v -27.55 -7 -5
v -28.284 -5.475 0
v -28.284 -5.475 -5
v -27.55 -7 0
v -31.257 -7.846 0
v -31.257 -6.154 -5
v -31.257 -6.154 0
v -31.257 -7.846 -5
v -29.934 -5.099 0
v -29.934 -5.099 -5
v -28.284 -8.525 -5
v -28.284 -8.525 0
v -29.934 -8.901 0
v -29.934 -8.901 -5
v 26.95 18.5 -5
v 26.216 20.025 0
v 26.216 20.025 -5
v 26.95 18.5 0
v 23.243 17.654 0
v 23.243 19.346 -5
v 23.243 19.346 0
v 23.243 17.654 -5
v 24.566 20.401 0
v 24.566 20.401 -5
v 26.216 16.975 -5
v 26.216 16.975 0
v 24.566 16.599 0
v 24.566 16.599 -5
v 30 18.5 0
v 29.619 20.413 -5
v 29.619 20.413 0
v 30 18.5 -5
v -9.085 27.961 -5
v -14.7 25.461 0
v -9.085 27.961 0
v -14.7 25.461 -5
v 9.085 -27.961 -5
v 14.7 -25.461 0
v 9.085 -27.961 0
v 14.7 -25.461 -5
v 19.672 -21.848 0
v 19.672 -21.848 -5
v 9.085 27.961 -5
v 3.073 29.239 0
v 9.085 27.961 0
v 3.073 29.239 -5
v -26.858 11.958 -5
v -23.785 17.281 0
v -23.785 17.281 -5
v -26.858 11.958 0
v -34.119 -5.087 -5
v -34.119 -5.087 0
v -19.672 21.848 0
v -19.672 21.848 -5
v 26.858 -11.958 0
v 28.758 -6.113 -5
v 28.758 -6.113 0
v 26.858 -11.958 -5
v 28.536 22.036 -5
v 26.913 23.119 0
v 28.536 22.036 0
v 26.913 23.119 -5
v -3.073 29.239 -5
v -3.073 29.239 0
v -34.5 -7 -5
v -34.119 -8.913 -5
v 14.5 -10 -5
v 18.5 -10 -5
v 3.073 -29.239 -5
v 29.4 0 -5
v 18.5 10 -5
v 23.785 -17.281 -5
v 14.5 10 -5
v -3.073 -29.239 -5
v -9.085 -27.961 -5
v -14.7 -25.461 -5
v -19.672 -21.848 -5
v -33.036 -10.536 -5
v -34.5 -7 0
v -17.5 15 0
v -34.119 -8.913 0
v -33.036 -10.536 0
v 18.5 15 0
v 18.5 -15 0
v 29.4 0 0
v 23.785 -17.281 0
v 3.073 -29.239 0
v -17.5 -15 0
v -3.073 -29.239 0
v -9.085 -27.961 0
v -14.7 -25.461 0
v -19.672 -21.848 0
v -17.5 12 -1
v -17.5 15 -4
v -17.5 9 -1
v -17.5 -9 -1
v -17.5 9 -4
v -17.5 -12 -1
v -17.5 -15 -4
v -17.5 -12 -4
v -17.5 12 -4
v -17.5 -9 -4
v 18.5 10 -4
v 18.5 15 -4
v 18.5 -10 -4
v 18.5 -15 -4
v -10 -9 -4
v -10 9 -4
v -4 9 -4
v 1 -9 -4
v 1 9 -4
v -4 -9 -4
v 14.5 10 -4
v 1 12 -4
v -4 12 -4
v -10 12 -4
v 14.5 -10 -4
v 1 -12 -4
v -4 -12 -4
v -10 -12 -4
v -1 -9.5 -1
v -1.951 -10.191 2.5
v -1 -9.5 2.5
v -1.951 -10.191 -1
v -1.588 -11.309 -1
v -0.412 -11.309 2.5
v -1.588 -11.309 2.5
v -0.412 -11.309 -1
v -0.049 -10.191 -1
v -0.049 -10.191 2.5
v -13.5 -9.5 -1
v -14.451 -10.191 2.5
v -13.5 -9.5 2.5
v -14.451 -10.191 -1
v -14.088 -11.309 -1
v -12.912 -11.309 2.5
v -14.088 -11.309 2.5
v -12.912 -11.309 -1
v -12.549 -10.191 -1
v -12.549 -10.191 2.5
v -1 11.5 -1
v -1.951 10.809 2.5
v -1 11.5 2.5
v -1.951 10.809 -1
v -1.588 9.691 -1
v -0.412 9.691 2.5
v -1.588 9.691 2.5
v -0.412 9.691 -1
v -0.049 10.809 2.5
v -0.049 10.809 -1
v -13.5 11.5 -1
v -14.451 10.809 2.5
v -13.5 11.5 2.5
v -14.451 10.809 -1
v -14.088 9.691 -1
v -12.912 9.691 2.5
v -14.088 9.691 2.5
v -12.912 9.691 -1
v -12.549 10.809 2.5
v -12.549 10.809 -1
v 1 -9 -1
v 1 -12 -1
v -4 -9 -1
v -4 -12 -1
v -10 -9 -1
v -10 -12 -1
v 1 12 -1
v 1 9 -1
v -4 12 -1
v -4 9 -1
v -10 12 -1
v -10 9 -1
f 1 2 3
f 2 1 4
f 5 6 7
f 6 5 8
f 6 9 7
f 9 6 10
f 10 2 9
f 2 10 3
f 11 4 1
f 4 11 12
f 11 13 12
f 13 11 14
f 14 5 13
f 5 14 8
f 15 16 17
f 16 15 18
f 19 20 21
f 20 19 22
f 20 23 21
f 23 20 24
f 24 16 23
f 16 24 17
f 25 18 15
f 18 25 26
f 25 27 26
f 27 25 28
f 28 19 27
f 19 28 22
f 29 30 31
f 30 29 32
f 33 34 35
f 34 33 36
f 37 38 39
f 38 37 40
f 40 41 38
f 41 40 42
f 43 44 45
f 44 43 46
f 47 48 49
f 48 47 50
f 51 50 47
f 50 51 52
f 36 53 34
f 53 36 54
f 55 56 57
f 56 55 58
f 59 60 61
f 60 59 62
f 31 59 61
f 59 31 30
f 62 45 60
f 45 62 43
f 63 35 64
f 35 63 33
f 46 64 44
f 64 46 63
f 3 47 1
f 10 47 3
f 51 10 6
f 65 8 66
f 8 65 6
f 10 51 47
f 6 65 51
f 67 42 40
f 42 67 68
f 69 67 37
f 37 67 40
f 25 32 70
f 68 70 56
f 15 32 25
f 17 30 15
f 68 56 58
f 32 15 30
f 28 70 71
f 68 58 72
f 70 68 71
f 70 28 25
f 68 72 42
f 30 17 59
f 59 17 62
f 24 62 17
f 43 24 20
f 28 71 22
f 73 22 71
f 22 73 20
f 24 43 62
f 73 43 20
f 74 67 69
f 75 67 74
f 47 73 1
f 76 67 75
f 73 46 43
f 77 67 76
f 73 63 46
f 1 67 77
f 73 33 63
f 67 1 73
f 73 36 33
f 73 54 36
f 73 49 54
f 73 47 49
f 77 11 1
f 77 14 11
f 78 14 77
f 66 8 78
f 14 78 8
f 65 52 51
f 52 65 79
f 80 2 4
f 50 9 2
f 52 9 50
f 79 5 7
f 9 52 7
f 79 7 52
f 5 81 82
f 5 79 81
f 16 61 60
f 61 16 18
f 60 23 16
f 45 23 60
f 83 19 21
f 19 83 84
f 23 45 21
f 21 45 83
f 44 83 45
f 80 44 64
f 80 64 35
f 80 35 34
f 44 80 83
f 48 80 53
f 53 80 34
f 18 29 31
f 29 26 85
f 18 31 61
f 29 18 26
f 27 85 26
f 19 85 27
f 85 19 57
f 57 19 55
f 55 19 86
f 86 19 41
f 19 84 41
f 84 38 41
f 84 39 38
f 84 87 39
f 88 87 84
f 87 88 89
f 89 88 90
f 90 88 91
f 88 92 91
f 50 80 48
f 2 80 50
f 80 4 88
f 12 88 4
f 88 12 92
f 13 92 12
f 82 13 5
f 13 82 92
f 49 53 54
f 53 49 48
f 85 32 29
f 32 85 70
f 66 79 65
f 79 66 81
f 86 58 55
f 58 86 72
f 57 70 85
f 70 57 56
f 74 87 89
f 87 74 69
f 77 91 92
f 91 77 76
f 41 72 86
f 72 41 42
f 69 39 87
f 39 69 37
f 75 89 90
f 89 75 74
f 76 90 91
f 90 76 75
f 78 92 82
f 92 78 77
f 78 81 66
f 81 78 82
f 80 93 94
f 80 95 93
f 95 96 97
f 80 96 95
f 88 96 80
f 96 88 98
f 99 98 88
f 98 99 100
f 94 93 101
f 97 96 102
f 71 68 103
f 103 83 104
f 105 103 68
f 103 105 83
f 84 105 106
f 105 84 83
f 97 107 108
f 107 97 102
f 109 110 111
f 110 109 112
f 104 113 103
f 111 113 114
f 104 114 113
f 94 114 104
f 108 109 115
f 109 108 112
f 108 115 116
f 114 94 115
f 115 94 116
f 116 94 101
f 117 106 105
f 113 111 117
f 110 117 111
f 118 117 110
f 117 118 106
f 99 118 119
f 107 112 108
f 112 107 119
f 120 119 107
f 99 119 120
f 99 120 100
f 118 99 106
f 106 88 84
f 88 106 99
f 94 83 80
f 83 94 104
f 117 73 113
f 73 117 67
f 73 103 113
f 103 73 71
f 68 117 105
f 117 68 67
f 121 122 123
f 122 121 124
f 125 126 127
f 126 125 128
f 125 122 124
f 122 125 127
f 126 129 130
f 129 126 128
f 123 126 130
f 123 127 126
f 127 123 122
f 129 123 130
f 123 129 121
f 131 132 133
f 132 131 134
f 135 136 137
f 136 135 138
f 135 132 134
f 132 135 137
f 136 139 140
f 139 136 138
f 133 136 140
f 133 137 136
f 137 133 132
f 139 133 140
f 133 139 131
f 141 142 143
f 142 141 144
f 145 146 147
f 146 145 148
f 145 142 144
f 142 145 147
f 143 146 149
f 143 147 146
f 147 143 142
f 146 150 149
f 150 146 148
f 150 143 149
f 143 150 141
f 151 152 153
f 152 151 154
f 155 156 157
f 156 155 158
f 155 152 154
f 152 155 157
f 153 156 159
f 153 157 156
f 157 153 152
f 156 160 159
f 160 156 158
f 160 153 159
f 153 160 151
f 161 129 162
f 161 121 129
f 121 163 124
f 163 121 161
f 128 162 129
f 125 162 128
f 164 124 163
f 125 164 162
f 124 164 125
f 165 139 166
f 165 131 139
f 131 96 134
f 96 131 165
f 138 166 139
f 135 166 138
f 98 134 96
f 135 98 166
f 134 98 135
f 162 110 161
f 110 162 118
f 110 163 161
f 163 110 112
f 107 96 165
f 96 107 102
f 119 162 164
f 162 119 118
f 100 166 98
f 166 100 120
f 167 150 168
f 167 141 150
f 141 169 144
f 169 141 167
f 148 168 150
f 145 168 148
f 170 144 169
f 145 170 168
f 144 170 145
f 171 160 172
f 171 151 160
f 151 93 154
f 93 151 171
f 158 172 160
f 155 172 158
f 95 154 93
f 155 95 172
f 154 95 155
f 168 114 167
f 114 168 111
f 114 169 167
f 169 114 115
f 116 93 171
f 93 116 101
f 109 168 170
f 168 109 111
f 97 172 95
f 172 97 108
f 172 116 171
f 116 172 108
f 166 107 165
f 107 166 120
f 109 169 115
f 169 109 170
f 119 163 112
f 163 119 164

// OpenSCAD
// Camera module telescope interface backplate.

// Make the values explicit since we are not running customizer
Drawtube_OD_inches_explicit = 2.0;
part_explicit="backplate";

include <pipiece.scad>
